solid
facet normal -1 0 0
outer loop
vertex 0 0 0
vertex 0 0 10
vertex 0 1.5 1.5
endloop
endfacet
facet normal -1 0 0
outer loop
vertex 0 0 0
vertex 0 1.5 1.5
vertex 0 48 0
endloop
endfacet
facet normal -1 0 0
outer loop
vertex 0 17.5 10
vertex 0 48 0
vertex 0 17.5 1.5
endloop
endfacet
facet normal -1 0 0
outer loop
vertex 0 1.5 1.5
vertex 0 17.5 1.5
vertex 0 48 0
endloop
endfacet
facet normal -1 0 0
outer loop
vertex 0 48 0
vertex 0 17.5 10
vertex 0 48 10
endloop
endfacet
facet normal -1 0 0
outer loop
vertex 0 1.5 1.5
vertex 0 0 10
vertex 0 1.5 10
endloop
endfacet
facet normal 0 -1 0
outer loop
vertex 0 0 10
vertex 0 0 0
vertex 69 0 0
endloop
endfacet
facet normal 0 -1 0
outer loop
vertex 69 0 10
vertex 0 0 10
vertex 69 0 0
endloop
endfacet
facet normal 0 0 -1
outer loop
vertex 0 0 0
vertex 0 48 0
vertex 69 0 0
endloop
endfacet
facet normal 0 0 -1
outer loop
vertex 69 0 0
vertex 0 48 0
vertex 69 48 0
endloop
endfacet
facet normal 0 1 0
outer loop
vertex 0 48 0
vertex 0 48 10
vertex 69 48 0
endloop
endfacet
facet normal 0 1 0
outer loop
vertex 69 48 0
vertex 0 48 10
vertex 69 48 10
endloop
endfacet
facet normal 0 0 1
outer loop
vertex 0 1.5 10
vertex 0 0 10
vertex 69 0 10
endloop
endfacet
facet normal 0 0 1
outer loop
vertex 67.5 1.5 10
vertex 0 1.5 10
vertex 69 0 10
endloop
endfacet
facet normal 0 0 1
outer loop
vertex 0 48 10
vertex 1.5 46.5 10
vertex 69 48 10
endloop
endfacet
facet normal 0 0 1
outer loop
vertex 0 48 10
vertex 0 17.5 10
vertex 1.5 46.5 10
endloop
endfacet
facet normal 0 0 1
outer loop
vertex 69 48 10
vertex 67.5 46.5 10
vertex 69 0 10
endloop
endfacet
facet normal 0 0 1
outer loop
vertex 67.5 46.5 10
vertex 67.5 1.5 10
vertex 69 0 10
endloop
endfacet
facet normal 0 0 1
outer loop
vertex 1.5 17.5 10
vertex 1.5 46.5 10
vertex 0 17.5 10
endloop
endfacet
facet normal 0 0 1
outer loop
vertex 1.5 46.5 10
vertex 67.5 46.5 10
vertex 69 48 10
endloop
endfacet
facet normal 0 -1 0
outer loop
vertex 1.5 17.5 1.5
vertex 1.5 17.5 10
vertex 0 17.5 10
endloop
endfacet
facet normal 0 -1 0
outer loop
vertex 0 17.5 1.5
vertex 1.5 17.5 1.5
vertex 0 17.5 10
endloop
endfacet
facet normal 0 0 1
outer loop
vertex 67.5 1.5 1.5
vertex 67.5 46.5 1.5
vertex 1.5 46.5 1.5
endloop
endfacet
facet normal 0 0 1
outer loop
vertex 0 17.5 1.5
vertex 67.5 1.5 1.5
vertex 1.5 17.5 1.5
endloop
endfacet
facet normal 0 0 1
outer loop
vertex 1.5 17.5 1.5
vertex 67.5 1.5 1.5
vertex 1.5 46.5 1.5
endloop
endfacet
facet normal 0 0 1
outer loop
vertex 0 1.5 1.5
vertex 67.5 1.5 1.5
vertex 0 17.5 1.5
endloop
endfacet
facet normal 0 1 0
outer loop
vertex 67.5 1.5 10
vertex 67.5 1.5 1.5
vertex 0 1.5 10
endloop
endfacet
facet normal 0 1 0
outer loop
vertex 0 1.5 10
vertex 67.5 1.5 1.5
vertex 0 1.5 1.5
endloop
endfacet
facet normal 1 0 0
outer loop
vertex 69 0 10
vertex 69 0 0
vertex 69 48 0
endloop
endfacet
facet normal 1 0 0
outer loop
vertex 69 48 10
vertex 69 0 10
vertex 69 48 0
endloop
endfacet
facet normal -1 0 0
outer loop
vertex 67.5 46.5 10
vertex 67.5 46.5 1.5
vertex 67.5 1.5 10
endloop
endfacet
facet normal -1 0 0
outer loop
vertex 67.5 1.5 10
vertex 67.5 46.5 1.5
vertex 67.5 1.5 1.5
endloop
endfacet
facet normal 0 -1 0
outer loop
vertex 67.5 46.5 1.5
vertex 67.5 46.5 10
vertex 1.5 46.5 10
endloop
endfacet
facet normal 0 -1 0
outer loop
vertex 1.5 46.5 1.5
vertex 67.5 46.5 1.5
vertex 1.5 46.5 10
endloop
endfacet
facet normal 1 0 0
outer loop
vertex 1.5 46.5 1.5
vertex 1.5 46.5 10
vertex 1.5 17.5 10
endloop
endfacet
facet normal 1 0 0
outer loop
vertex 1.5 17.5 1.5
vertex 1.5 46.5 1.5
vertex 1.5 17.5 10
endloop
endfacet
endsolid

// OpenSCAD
module tray() {
	translate([1.5,1.5,1.5]) {
		cube([66,45,10], centered=true);	
	}
}

module walls() {
	cube([69,48,10], centered=true);
}

module batteryHole() {
	translate([-1.5,1.5,1.5]) {
		cube([5,16,10]);
	}
}

module holder() {
	difference() {
		difference() {
			walls();
			batteryHole();
		}
		tray();
	}
}

holder();
